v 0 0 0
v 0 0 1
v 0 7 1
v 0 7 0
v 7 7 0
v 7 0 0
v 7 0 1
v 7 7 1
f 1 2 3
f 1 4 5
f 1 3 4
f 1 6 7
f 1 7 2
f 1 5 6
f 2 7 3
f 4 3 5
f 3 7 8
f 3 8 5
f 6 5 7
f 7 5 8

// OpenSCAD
/* Warning, this is a very basic generator with a lot of approximation 
input data : [VQFN, KZX, 7x7x1.0mm, 48, , A, C04-00475A]
generated by com.zoubworld.electronics.cad.model3d.Basic
Date : Sun Feb 15 10:50:48 CET 2026
*/

//body
color("black")
translate([0,0,0])
cube([7.0,7.0,1.0], center=false);
